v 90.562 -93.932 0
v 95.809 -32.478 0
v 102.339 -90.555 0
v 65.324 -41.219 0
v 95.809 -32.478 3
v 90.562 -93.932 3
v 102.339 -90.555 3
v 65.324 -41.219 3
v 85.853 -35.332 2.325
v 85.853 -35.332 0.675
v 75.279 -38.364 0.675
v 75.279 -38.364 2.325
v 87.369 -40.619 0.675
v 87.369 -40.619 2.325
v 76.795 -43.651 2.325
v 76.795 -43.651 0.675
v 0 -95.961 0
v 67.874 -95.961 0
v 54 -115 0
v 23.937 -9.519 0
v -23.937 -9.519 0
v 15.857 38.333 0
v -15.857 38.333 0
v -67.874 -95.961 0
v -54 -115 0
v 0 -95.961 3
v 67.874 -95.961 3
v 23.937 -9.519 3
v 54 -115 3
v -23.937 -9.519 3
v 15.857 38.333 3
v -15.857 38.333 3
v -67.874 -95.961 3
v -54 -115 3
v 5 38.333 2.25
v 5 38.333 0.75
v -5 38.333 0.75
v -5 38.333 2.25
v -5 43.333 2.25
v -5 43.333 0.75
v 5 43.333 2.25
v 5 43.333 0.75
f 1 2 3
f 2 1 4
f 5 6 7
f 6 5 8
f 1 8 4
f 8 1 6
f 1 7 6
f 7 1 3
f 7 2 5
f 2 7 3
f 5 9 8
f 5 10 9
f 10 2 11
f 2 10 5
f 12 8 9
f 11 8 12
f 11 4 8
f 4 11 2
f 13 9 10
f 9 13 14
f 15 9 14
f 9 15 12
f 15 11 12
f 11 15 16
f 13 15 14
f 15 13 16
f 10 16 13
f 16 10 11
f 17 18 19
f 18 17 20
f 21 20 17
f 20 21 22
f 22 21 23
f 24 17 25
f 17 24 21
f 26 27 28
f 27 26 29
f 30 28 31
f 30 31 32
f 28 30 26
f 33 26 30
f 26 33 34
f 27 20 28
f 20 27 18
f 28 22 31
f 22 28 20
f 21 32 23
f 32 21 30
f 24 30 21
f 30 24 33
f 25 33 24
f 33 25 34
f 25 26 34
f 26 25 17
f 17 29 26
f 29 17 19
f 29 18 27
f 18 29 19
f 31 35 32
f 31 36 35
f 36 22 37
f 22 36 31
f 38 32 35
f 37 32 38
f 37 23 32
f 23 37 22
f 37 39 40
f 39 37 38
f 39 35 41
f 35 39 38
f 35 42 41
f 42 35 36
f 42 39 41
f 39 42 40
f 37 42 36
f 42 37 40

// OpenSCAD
/*
    Proxymow Mower - 230mm Space Shuttle Target
    2-part design to fit print Ender-3 print bed
    Slice with Top Layers = 0 and gyroid infill to expose texture
    Print in White Filament
*/
target_width = 148;   //mm
target_length = 230;  //mm
target_radius = 20;  //mm
half_target_width = target_width / 2;
half_target_length = target_length / 2;
thickness = 3;// mm
split_ratio = 0.5;
peg_dim = 10;
peg_depth = thickness / 2;
clearance = 0.2; // mm
peg_hole = peg_dim + (clearance * 2);//clearance each side
scale_factor = 1.1;
echo("scale_factor", scale_factor);

//Math
//leg length from simple geometry
leg_length = sqrt((half_target_width * half_target_width) + (target_length * target_length));

function midpoint(start_x, start_y, finish_x, finish_y) = 
    [(start_x + finish_x)/2, (start_y + finish_y)/2];

function get_point_adistance_along_line(start_x, start_y, finish_x, finish_y, d) =
  let (x_length = finish_x - start_x)
  let (y_length = finish_y - start_y)
  let (line_length = sqrt(x_length^2 + y_length^2))
  let (ratio = d / line_length)
  let (new_x = start_x + (x_length * ratio))
  let (new_y = start_y + (y_length * ratio))
  
  [new_x, new_y];

module shuttle() {
    v1_x = 0;
    v1_y = half_target_length;
    v2_x = -half_target_width;
    v2_y = -half_target_length;
    v3_x = half_target_width;
    v3_y = -half_target_length;
    v12 = get_point_adistance_along_line(v1_x, v1_y, v2_x, v2_y, target_radius);
    v21 = get_point_adistance_along_line(v2_x, v2_y, v1_x, v1_y, target_radius);
    v13 = get_point_adistance_along_line(v1_x, v1_y, v3_x, v3_y, target_radius);
    v31 = get_point_adistance_along_line(v3_x, v3_y, v1_x, v1_y, target_radius);
    v23 = get_point_adistance_along_line(v2_x, v2_y, v3_x, v3_y, target_radius);
    v32 = get_point_adistance_along_line(v3_x, v3_y, v2_x, v2_y, target_radius);
    v12m = midpoint(v13[0], v13[1], v23[0], v23[1]);
    v23m = midpoint(v31[0], v31[1], v21[0], v21[1]);
    v31m = midpoint(v32[0], v32[1], v12[0], v12[1]);
    linear_extrude(height=thickness, center=false) polygon(
        [
            v12,
            v12m,
            v21,
            v23,
            v23m,
            v32,
            v31,
            v31m,
            v13
        ]
    );
}

module mycut() {
    translate([-target_width/2, -target_length/2, -1]) cube([target_width, 2*target_length/3, thickness + 2]);
}

module tail() {
    intersection() {
        shuttle();
        mycut();
    }
    color("blue") translate([0, target_length/6, peg_depth]) cube([peg_dim, peg_dim, peg_depth], center=true);
}

module tip() {
    difference() {
        shuttle();
        mycut();
        translate([0, target_length/6, peg_depth]) scale(scale_factor) cube([peg_dim, peg_dim, peg_depth], center=true);
    }
}
translate([70, 0, 0]) rotate([0,0,180 + 16]) color("orange") tip();
color("yellow") tail();
